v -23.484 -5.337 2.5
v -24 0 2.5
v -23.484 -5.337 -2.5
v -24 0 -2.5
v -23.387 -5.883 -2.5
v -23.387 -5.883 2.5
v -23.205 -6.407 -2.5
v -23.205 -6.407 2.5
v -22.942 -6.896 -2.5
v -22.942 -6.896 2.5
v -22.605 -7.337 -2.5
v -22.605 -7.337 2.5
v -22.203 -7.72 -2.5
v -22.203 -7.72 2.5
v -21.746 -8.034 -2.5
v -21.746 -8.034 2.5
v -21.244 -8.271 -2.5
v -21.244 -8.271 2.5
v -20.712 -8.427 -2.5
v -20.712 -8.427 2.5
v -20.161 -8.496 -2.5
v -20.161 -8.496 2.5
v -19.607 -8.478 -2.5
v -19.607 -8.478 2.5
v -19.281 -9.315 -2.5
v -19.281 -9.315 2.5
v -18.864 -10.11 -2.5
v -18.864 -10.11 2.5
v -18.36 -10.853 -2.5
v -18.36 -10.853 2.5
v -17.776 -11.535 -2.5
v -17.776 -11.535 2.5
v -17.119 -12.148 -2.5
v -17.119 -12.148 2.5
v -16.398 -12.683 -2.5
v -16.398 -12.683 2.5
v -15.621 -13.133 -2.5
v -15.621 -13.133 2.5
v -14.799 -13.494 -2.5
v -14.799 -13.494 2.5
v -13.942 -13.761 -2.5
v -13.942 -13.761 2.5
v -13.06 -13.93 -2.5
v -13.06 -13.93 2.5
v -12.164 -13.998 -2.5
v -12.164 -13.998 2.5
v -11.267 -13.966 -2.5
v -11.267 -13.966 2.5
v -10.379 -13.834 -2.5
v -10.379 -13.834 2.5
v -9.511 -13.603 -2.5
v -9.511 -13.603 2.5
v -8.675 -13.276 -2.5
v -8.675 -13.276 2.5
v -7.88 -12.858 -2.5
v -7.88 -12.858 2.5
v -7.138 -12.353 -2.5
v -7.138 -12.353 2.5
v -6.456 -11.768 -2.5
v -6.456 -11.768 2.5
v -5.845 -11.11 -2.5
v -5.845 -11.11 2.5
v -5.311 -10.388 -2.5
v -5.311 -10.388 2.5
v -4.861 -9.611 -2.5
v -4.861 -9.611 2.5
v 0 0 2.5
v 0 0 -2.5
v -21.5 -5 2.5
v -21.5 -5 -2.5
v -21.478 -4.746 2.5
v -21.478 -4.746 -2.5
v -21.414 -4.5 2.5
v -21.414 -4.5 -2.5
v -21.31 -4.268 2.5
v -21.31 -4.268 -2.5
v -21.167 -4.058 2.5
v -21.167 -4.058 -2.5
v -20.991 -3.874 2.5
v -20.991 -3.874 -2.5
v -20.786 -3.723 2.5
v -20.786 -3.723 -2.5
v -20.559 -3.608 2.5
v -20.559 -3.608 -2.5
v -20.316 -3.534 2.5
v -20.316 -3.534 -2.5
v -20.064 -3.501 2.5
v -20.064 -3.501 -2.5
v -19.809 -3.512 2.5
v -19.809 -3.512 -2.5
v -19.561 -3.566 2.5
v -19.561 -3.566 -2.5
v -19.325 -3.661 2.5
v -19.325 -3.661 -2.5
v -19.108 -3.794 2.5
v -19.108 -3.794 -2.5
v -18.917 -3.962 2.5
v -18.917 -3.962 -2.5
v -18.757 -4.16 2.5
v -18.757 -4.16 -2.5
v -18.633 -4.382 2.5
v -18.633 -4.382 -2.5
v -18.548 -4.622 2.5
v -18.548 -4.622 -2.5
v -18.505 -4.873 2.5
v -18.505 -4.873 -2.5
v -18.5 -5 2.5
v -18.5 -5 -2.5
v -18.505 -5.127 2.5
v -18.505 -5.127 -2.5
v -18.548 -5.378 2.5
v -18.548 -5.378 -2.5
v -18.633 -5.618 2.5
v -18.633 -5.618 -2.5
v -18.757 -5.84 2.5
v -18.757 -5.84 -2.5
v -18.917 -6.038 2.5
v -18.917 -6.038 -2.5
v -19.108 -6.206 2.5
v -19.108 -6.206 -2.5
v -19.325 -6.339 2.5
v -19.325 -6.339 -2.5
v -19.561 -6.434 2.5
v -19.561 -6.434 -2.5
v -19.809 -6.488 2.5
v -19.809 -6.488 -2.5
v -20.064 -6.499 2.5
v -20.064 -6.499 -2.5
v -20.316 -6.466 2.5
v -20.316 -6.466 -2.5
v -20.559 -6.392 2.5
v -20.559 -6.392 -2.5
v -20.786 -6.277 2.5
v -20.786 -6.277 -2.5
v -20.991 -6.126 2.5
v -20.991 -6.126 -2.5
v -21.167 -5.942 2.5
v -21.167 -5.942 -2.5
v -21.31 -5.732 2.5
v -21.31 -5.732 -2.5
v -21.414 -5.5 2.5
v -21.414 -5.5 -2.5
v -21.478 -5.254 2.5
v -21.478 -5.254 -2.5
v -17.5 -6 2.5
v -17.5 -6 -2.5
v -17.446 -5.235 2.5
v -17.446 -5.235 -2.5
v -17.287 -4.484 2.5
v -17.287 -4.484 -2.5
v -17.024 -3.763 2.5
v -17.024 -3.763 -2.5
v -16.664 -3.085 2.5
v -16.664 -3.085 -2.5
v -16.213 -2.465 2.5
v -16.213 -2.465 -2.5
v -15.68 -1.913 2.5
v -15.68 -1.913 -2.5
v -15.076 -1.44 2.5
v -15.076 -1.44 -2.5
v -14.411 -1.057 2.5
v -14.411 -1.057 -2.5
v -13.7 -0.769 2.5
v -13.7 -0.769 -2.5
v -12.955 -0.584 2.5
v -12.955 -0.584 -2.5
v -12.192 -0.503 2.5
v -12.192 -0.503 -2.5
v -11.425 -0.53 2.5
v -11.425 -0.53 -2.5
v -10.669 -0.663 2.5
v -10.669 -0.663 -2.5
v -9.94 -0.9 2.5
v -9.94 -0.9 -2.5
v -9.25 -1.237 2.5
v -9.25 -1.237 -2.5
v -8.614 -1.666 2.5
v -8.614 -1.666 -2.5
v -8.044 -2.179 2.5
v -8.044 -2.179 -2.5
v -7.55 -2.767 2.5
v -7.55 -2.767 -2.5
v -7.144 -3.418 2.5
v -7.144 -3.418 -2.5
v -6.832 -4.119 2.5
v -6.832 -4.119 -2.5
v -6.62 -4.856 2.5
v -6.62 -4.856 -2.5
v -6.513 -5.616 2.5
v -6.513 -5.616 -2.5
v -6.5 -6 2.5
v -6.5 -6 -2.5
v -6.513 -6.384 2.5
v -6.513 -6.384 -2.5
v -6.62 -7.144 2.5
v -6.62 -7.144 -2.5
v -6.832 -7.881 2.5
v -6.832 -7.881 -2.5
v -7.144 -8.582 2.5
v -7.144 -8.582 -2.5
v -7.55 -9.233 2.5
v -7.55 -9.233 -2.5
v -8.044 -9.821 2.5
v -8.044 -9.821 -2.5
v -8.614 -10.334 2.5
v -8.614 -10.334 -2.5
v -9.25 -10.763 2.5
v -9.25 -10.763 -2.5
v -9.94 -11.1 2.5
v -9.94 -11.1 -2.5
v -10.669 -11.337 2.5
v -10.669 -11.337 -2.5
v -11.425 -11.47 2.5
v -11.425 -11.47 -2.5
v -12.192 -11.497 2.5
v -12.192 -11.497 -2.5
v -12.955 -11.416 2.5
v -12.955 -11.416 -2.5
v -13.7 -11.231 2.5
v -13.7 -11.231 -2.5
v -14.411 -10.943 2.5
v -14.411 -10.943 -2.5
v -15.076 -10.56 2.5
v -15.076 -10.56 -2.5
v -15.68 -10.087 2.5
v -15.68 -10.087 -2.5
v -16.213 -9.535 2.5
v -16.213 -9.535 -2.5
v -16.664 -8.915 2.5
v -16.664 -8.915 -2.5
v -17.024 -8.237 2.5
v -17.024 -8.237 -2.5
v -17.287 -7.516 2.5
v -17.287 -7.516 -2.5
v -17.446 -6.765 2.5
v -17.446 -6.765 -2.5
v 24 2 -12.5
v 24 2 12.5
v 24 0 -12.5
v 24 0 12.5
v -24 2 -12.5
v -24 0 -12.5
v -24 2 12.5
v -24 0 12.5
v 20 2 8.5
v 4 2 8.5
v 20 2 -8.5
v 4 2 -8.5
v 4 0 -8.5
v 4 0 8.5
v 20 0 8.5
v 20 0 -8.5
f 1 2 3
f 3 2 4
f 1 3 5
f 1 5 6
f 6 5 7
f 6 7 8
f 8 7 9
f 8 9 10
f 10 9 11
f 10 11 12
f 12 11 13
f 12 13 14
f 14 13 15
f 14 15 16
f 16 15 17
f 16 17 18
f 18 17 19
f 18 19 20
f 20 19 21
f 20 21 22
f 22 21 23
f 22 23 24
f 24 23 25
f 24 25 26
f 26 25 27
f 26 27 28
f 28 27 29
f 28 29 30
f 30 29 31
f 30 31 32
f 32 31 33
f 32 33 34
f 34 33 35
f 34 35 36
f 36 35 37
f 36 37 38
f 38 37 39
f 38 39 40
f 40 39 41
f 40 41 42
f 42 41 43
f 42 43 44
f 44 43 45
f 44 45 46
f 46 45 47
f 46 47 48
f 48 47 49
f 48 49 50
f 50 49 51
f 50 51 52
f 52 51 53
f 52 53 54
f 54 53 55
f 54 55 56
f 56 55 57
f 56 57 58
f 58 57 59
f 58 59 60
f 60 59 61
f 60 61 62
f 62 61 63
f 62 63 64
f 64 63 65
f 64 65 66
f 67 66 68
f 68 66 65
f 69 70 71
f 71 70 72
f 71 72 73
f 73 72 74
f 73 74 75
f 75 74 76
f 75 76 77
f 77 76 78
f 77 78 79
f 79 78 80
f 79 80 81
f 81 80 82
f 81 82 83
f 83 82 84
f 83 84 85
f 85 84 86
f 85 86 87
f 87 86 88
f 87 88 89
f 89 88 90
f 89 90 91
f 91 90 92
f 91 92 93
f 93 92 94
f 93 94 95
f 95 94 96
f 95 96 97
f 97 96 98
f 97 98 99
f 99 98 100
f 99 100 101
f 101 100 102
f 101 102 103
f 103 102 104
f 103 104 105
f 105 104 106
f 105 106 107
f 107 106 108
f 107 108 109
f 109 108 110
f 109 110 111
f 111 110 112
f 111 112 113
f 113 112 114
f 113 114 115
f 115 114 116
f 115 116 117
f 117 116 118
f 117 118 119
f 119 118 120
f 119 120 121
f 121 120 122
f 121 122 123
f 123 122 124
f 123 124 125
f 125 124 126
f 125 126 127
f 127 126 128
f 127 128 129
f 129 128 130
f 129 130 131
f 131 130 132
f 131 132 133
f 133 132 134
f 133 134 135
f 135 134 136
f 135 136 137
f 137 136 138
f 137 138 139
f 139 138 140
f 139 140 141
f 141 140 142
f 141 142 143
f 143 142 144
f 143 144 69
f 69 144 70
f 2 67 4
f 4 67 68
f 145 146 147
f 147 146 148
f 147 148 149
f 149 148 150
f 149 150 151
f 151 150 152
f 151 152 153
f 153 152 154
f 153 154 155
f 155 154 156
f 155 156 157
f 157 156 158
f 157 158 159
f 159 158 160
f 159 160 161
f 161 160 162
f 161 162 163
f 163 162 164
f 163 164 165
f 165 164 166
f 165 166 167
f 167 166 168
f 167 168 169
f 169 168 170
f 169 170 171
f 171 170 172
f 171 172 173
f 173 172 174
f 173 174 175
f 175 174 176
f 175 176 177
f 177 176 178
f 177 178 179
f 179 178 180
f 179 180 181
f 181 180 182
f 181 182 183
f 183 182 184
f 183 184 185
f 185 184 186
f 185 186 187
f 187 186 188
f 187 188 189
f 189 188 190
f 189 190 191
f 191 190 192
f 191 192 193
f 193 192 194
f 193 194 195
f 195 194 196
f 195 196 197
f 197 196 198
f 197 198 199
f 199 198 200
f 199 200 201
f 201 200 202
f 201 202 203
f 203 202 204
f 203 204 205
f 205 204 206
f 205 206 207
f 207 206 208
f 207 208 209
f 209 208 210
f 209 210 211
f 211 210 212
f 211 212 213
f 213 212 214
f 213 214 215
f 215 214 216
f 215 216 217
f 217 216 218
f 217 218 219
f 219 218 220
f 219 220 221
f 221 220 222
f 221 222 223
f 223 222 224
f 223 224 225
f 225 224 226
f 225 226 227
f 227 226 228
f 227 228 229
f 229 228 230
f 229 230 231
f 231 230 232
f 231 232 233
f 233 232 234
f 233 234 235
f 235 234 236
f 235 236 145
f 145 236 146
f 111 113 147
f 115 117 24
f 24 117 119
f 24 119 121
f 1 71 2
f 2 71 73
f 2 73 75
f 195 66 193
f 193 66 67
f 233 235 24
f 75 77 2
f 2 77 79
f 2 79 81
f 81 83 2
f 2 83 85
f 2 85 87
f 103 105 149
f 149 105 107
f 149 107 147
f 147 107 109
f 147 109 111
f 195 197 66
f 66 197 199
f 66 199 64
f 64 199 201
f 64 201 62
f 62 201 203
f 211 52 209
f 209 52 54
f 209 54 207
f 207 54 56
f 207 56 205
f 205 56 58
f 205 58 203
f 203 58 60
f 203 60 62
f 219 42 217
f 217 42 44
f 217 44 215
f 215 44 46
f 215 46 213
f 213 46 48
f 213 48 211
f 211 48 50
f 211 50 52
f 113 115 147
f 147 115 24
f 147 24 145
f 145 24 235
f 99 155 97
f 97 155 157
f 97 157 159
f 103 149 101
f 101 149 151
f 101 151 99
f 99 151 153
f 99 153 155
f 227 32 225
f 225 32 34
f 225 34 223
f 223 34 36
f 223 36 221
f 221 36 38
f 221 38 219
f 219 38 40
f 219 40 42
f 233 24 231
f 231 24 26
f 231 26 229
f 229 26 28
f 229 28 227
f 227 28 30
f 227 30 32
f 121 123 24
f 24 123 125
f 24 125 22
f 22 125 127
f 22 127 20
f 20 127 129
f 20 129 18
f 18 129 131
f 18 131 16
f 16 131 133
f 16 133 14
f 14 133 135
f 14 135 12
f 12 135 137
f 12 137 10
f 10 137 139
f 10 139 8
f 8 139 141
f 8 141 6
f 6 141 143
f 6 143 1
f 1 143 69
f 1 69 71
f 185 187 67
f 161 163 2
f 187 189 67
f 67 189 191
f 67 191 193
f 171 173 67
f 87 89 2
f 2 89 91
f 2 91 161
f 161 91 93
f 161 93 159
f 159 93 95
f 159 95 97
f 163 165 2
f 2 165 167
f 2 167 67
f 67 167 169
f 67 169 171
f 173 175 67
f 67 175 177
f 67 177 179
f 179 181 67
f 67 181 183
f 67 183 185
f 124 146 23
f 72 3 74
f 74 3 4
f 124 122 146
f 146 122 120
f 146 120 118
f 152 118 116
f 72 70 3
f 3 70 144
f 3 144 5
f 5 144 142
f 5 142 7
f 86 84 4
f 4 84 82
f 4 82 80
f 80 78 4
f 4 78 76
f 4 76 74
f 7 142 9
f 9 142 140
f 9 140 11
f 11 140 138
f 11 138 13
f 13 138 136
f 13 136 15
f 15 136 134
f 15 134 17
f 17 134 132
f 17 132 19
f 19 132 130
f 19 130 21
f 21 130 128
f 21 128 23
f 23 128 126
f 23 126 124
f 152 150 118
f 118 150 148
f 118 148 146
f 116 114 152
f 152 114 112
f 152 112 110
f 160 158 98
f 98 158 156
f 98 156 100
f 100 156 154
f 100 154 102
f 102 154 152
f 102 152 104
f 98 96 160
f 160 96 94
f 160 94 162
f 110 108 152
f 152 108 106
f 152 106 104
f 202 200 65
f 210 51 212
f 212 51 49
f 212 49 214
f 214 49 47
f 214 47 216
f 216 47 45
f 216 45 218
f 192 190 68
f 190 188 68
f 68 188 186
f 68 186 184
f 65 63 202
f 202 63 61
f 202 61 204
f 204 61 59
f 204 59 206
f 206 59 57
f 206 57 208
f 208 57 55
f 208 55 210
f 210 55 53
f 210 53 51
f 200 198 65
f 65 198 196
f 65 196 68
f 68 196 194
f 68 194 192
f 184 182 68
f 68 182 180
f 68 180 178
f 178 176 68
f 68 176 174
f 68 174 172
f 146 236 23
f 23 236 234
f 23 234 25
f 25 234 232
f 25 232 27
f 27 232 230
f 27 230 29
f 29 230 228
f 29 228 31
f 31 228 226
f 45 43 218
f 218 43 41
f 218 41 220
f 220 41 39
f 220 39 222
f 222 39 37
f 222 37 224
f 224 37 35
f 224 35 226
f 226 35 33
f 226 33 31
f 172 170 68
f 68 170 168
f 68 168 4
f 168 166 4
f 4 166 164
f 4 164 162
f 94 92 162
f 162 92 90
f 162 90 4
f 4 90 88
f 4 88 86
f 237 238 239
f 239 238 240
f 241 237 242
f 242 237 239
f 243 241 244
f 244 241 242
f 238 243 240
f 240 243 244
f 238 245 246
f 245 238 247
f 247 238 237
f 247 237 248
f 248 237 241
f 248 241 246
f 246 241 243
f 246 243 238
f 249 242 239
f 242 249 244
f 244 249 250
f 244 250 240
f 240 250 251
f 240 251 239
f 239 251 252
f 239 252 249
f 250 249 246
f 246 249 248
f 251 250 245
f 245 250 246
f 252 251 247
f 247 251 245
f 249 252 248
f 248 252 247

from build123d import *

# Parameters (mm, degrees)
SKETCH_1_W          = 48
SKETCH_1_H          = 25
EXTRUDE_1_DEPTH     = 2
EXTRUDE_2_DEPTH     = 2.5
SKETCH_6_W          = 16
SKETCH_6_H          = 17
CUT_EXTRUDE_3_DEPTH = 4


with BuildPart() as part:
    # Эскиз1 → Бобышка-Вытянуть1 (new body)
    with BuildSketch(Plane(origin=(0, 0, 0), x_dir=(1, 0, 0), z_dir=(0, 1, 0))):
        Rectangle(SKETCH_1_W, SKETCH_1_H)
    extrude(amount=EXTRUDE_1_DEPTH)

    # Эскиз6 → Вырез-Вытянуть3 (cut)
    with BuildSketch(Plane.XZ):
        with Locations((12, 0)):
            Rectangle(SKETCH_6_W, SKETCH_6_H)
    extrude(amount=-CUT_EXTRUDE_3_DEPTH, mode=Mode.SUBTRACT)


with BuildPart() as body_2:
    # Эскиз2 → Бобышка-Вытянуть2 (new, symmetric)
    with BuildSketch(Plane.XY):
        with BuildLine():
            Line((-17.291502622, 0), (-24, 0))
            Line((-24, 0), (-23.483738935, -5.336991148))
            ThreePointArc((-23.483738935, -5.336991148), (-22.126337231, -2.219947845), (-18.762628152, -1.726025213))
            ThreePointArc((-18.762628152, -1.726025213), (-18.088539064, -0.810617372), (-17.291502622, 0))
        make_face()
        with BuildLine():
            Line((0, 0), (-6.708497378, 0))
            ThreePointArc((-6.708497378, 0), (-4.143798842, -4.489998884), (-4.861245436, -9.610842461))
            Line((-4.861245436, -9.610842461), (0, 0))
        make_face()
        with BuildLine():
            ThreePointArc((-18.762628152, -1.726025213), (-22.126337231, -2.219947845), (-23.483738935, -5.336991148))
            ThreePointArc((-23.483738935, -5.336991148), (-22.203124072, -7.719603707), (-19.606602618, -8.477820941))
            ThreePointArc((-19.606602618, -8.477820941), (-19.857963532, -7.500802829), (-19.984364814, -6.499918511))
            ThreePointArc((-19.984364814, -6.499918511), (-21.488416815, -4.813947898), (-19.615635186, -3.550081489))
            ThreePointArc((-19.615635186, -3.550081489), (-19.24675165, -2.611107773), (-18.762628152, -1.726025213))
        make_face()
        with BuildLine():
            ThreePointArc((-16.867376933, -3.439015464), (-17.653130214, -2.403424908), (-18.762628152, -1.726025213))
            ThreePointArc((-18.762628152, -1.726025213), (-19.24675165, -2.611107773), (-19.615635186, -3.550081489))
            ThreePointArc((-19.615635186, -3.550081489), (-18.811188152, -4.085272505), (-18.5, -5))
            ThreePointArc((-18.5, -5), (-18.933826285, -6.055117818), (-19.984364814, -6.499918511))
            ThreePointArc((-19.984364814, -6.499918511), (-19.857963532, -7.500802829), (-19.606602618, -8.477820941))
            ThreePointArc((-19.606602618, -8.477820941), (-18.364498538, -8.094371498), (-17.348007682, -7.284061459))
            ThreePointArc((-17.348007682, -7.284061459), (-17.457528322, -5.31780896), (-16.867376933, -3.439015464))
        make_face()
        with BuildLine():
            Line((-6.708497378, 0), (-17.291502622, 0))
            ThreePointArc((-17.291502622, 0), (-18.088539064, -0.810617372), (-18.762628152, -1.726025213))
            ThreePointArc((-18.762628152, -1.726025213), (-17.653130214, -2.403424908), (-16.867376933, -3.439015464))
            ThreePointArc((-16.867376933, -3.439015464), (-10.681018031, -0.660497536), (-6.5, -6))
            ThreePointArc((-6.5, -6), (-11.353487144, -11.461869746), (-17.348007682, -7.284061459))
            ThreePointArc((-17.348007682, -7.284061459), (-18.364498538, -8.094371498), (-19.606602618, -8.477820941))
            ThreePointArc((-19.606602618, -8.477820941), (-12.612906919, -13.976487016), (-4.861245436, -9.610842461))
            ThreePointArc((-4.861245436, -9.610842461), (-4.143798842, -4.489998884), (-6.708497378, 0))
        make_face()
    extrude(amount=EXTRUDE_2_DEPTH, both=True)


solid = Compound([part.part, body_2.part])
